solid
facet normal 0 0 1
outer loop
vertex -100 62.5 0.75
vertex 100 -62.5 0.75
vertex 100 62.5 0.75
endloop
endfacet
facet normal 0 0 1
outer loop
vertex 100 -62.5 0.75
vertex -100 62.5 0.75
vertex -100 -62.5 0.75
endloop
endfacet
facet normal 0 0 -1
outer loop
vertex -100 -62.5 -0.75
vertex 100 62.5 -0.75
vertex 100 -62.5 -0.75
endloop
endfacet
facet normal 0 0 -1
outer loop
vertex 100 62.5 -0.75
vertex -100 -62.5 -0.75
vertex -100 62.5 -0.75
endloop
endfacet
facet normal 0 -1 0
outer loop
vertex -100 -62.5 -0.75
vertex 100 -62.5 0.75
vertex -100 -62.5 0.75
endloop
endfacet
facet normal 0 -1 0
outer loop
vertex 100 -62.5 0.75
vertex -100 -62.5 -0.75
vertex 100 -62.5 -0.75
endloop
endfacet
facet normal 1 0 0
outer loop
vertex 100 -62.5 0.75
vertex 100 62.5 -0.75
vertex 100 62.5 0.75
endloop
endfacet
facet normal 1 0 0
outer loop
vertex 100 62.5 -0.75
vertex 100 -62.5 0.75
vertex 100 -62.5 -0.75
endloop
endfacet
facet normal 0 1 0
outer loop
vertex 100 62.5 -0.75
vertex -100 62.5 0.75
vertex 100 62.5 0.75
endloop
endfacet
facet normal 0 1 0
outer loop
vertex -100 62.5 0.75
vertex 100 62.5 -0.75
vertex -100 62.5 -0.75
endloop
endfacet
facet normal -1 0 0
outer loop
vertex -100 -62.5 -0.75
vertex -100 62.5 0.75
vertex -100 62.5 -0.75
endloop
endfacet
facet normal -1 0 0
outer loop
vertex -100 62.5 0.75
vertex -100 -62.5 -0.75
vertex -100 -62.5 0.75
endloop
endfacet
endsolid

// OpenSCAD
// ========================================
// a 200 x 125 x 1.5 mm plate
// NeuroCAD canonical IR; dimensions are millimetres
// ========================================
$fn = 48;

cube(size=[200, 125, 1.5], center=true);
